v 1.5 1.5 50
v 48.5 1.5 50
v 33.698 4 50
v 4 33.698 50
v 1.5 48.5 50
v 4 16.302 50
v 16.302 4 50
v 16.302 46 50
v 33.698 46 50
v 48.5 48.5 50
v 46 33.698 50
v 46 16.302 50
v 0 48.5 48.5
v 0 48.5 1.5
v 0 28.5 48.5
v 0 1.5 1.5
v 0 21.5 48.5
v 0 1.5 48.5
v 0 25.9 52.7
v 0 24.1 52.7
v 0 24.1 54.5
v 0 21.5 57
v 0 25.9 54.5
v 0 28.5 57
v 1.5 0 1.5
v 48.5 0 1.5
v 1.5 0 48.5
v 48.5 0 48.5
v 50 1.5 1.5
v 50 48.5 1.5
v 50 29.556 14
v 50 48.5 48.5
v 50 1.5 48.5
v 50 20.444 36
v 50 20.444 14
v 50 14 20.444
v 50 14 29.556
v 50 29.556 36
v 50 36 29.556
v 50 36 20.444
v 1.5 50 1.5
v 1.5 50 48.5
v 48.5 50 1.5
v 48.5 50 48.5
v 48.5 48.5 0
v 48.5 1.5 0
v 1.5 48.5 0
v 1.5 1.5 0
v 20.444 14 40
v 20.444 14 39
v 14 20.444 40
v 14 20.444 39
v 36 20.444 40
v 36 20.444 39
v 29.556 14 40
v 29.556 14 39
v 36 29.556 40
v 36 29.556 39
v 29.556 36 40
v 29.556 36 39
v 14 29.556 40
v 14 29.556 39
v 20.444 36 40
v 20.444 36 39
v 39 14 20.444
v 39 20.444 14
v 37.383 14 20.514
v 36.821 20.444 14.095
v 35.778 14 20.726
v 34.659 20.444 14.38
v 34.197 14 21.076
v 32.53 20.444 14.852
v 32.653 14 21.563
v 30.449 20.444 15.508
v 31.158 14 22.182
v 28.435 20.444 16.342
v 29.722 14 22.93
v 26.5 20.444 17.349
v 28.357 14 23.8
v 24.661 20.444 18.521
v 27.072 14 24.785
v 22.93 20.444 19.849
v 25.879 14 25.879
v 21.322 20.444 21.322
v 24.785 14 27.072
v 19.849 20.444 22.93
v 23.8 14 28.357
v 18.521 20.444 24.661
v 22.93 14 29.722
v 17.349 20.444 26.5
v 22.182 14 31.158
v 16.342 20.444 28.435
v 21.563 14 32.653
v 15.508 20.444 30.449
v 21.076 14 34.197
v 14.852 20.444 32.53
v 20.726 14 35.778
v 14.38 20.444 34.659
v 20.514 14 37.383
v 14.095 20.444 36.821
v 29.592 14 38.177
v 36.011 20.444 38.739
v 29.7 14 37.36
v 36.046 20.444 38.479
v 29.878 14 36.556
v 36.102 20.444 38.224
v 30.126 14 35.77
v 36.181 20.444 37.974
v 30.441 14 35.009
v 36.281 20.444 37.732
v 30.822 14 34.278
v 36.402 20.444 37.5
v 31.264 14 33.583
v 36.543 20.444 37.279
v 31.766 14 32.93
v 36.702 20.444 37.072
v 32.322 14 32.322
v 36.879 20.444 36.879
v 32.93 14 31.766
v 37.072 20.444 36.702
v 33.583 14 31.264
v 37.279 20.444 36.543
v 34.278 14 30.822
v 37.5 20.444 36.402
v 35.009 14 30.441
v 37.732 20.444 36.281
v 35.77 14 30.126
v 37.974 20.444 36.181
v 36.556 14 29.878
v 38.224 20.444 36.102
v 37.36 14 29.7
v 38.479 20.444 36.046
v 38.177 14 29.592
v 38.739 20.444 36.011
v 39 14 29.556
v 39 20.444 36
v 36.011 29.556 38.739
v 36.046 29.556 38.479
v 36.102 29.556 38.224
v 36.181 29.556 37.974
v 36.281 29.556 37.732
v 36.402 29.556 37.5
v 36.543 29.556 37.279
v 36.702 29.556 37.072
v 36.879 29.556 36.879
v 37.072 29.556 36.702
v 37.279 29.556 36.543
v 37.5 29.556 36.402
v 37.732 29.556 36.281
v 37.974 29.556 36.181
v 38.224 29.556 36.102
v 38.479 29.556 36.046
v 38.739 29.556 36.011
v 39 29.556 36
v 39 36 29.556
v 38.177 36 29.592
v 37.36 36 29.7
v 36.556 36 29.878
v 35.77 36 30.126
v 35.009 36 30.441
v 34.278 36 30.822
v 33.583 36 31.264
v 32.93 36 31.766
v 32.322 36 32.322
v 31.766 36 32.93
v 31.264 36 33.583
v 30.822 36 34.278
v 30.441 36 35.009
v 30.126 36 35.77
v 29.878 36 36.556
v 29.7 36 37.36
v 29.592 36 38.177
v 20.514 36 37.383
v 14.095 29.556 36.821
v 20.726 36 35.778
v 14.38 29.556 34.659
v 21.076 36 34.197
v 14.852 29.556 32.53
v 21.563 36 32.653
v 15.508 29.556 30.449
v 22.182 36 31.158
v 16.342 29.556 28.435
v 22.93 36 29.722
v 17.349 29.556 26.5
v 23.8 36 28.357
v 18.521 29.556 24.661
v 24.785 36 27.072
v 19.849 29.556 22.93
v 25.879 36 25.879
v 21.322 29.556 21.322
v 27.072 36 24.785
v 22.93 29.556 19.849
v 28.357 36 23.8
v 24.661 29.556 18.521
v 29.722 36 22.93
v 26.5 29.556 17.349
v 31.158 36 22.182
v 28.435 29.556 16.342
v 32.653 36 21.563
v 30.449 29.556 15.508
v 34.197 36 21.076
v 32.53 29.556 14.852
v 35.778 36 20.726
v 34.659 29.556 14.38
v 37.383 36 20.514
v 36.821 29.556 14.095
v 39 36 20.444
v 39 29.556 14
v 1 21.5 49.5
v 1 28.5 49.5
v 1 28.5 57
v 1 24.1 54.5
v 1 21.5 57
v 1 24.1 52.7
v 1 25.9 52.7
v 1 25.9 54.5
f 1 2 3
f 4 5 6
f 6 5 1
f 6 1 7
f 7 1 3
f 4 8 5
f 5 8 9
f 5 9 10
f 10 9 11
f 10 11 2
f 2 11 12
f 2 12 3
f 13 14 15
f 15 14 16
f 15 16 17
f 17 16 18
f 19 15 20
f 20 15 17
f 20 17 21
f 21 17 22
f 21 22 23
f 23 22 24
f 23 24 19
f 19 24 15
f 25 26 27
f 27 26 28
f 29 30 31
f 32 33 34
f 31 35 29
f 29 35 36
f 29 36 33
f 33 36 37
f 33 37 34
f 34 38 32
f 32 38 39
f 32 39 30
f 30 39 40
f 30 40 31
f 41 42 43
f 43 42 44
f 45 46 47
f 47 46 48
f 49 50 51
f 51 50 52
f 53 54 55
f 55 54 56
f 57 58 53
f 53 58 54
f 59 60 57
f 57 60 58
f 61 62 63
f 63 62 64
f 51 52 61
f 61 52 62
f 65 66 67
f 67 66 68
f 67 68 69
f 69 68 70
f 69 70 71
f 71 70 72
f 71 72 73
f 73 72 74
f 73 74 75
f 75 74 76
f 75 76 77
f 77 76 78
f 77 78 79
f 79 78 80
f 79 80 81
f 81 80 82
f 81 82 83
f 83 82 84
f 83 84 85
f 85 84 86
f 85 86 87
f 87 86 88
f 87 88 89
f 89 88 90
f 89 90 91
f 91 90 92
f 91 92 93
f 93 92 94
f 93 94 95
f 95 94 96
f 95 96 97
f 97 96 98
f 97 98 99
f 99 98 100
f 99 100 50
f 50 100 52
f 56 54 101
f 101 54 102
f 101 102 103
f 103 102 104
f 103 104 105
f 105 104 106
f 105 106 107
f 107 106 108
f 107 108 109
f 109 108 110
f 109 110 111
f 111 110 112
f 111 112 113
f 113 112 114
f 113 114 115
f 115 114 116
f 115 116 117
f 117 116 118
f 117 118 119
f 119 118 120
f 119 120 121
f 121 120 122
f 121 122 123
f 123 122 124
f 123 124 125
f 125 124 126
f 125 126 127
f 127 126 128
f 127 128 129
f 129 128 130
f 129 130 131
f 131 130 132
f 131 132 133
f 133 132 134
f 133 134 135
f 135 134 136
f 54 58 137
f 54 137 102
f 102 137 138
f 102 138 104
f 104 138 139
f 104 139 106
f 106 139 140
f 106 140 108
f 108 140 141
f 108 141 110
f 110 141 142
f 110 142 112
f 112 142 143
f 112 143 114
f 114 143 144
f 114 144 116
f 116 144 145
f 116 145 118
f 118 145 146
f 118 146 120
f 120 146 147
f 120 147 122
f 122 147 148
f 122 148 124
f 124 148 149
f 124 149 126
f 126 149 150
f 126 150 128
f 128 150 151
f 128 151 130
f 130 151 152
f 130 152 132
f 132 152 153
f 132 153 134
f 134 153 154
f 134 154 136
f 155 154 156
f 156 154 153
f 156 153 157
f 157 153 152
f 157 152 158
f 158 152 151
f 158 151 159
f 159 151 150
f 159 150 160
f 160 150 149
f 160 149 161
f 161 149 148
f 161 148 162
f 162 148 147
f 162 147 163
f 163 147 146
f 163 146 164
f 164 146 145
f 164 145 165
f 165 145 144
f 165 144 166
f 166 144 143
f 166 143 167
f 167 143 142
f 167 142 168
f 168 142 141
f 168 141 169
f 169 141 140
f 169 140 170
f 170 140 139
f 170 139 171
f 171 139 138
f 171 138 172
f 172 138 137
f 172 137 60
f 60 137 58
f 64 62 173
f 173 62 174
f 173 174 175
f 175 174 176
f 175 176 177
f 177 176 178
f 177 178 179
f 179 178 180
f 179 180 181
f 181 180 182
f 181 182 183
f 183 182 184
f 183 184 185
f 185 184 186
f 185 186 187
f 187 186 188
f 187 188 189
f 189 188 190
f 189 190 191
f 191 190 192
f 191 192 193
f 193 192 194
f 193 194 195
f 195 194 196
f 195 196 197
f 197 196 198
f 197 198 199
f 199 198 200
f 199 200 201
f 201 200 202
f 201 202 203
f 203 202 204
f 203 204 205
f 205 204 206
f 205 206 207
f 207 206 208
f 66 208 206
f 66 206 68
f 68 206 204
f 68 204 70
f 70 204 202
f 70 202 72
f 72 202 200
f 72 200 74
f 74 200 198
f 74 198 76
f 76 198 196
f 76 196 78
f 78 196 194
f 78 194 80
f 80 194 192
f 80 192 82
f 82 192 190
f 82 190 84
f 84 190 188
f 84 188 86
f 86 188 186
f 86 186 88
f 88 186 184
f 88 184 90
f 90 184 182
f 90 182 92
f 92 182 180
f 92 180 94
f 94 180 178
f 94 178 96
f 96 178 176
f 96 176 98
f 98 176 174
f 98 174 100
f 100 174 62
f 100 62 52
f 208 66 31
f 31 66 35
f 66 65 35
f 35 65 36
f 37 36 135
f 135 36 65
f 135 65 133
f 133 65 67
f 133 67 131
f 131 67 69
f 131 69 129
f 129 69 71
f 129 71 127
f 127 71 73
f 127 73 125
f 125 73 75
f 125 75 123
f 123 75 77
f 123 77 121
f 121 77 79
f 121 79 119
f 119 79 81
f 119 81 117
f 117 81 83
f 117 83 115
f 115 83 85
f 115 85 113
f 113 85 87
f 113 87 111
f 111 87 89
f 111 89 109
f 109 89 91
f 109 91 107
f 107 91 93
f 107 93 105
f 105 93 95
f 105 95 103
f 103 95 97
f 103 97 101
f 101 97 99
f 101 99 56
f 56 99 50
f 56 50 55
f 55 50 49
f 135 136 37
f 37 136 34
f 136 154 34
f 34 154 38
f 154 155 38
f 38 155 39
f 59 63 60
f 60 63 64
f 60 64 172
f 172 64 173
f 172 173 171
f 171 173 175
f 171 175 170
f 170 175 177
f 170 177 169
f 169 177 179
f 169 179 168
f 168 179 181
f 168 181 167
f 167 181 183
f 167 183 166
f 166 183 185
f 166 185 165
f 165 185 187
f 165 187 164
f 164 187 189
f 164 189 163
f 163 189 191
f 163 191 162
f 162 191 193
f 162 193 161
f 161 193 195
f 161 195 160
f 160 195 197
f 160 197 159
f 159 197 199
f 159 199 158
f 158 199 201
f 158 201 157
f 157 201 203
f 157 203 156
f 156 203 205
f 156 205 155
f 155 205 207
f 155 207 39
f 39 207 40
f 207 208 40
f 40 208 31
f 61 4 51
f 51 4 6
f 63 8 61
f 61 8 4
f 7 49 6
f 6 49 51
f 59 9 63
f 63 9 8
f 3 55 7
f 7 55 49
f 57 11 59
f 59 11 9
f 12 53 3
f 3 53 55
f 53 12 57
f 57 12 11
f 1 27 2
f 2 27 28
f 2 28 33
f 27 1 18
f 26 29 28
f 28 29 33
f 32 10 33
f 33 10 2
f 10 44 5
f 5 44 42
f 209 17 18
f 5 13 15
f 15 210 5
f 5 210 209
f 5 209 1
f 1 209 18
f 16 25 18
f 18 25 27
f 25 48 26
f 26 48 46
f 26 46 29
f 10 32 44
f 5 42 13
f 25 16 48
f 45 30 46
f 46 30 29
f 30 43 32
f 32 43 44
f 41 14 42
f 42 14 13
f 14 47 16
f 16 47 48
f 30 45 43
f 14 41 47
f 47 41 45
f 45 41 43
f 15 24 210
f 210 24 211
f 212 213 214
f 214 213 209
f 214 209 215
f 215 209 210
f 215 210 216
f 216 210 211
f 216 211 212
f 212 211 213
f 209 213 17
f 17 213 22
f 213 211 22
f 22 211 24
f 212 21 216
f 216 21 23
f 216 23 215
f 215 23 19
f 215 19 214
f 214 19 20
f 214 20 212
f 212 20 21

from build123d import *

# Parameters (mm, degrees)
SKETCH1_W                = 50
SKETCH1_H                = 50
BOSS_EXTRUDE1_DEPTH      = 50
CHAMFER1_SIZE            = 10
CHAMFER2_SIZE            = 1.5
BOSS_EXTRUDE2_DEPTH      = 7
BOSS_EXTRUDE2_DEPTH_BACK = 10
SKETCH10_W               = 1
SKETCH10_H               = 7
SKETCH11_W               = 1.8
SKETCH11_H               = 1.8
CUT_EXTRUDE1_DEPTH       = 7


with BuildPart() as part:
    # Sketch1 → Boss-Extrude1 (new body)
    with BuildSketch(Plane.XY):
        with Locations((25, 25)):
            Rectangle(SKETCH1_W, SKETCH1_H)
    extrude(amount=BOSS_EXTRUDE1_DEPTH)

    # Cut-Sweep5: sweep along a path in Sketch9
    with BuildLine(Plane(origin=(0, 25, 0), x_dir=(-1, 0, 0), z_dir=(0, -1, 0))) as cut_sweep5_path:
        Line((-50, -25), (-39, -25))
        ThreePointArc((-39, -25), (-29.100505063, -29.100505063), (-25, -39))
        Line((-25, -39), (-25, -50))
    # Sketch8 → Cut-Sweep5 (sweep, cut)
    with BuildSketch(Plane(origin=(50, 0, 0), x_dir=(0, 0, -1), z_dir=(1, 0, 0))):
        Polygon((-14, 29.556349186), (-20.443650814, 36), (-29.556349186, 36), (-36, 29.556349186), (-36, 20.443650814), (-29.556349186, 14), (-20.443650814, 14), (-14, 20.443650814), align=None)
    sweep(path=cut_sweep5_path.line, mode=Mode.SUBTRACT)

    # Chamfer1
    chamfer1_edges = [part.edges().sort_by_distance(p)[0] for p in [
        (17.221825407, 17.221825407, 50),
        (32.778174593, 17.221825407, 50),
        (36, 25, 50),
        (32.778174593, 32.778174593, 50),
        (17.221825407, 32.778174593, 50),
        (14, 25, 50),
        (25, 14, 50),
        (25, 36, 50),
    ]]
    chamfer(chamfer1_edges, length=CHAMFER1_SIZE)

    # Chamfer2
    chamfer2_edges = [part.edges().sort_by_distance(p)[0] for p in [
        (50, 25, 50),
        (25, 50, 50),
        (0, 25, 50),
        (25, 50, 0),
        (50, 25, 0),
        (25, 0, 0),
        (0, 25, 0),
        (25, 0, 50),
        (0, 50, 25),
        (50, 50, 25),
        (50, 0, 25),
        (0, 0, 25),
    ]]
    chamfer(chamfer2_edges, length=CHAMFER2_SIZE)

    # Sketch10 → Boss-Extrude2 (add, two sides: drawn at the far end of the back side and taken through both)
    with BuildSketch(Plane.XY.offset(50).offset(-BOSS_EXTRUDE2_DEPTH_BACK)):
        with Locations((0.5, 25)):
            Rectangle(SKETCH10_W, SKETCH10_H)
    extrude(amount=BOSS_EXTRUDE2_DEPTH + BOSS_EXTRUDE2_DEPTH_BACK)

    # Sketch11 → Cut-Extrude1 (cut)
    with BuildSketch(Plane(origin=(1, 0, 0), x_dir=(0, 0, -1), z_dir=(1, 0, 0))):
        with Locations((-53.6, 25)):
            Rectangle(SKETCH11_W, SKETCH11_H)
    extrude(amount=-CUT_EXTRUDE1_DEPTH, mode=Mode.SUBTRACT)


solid = part.part
